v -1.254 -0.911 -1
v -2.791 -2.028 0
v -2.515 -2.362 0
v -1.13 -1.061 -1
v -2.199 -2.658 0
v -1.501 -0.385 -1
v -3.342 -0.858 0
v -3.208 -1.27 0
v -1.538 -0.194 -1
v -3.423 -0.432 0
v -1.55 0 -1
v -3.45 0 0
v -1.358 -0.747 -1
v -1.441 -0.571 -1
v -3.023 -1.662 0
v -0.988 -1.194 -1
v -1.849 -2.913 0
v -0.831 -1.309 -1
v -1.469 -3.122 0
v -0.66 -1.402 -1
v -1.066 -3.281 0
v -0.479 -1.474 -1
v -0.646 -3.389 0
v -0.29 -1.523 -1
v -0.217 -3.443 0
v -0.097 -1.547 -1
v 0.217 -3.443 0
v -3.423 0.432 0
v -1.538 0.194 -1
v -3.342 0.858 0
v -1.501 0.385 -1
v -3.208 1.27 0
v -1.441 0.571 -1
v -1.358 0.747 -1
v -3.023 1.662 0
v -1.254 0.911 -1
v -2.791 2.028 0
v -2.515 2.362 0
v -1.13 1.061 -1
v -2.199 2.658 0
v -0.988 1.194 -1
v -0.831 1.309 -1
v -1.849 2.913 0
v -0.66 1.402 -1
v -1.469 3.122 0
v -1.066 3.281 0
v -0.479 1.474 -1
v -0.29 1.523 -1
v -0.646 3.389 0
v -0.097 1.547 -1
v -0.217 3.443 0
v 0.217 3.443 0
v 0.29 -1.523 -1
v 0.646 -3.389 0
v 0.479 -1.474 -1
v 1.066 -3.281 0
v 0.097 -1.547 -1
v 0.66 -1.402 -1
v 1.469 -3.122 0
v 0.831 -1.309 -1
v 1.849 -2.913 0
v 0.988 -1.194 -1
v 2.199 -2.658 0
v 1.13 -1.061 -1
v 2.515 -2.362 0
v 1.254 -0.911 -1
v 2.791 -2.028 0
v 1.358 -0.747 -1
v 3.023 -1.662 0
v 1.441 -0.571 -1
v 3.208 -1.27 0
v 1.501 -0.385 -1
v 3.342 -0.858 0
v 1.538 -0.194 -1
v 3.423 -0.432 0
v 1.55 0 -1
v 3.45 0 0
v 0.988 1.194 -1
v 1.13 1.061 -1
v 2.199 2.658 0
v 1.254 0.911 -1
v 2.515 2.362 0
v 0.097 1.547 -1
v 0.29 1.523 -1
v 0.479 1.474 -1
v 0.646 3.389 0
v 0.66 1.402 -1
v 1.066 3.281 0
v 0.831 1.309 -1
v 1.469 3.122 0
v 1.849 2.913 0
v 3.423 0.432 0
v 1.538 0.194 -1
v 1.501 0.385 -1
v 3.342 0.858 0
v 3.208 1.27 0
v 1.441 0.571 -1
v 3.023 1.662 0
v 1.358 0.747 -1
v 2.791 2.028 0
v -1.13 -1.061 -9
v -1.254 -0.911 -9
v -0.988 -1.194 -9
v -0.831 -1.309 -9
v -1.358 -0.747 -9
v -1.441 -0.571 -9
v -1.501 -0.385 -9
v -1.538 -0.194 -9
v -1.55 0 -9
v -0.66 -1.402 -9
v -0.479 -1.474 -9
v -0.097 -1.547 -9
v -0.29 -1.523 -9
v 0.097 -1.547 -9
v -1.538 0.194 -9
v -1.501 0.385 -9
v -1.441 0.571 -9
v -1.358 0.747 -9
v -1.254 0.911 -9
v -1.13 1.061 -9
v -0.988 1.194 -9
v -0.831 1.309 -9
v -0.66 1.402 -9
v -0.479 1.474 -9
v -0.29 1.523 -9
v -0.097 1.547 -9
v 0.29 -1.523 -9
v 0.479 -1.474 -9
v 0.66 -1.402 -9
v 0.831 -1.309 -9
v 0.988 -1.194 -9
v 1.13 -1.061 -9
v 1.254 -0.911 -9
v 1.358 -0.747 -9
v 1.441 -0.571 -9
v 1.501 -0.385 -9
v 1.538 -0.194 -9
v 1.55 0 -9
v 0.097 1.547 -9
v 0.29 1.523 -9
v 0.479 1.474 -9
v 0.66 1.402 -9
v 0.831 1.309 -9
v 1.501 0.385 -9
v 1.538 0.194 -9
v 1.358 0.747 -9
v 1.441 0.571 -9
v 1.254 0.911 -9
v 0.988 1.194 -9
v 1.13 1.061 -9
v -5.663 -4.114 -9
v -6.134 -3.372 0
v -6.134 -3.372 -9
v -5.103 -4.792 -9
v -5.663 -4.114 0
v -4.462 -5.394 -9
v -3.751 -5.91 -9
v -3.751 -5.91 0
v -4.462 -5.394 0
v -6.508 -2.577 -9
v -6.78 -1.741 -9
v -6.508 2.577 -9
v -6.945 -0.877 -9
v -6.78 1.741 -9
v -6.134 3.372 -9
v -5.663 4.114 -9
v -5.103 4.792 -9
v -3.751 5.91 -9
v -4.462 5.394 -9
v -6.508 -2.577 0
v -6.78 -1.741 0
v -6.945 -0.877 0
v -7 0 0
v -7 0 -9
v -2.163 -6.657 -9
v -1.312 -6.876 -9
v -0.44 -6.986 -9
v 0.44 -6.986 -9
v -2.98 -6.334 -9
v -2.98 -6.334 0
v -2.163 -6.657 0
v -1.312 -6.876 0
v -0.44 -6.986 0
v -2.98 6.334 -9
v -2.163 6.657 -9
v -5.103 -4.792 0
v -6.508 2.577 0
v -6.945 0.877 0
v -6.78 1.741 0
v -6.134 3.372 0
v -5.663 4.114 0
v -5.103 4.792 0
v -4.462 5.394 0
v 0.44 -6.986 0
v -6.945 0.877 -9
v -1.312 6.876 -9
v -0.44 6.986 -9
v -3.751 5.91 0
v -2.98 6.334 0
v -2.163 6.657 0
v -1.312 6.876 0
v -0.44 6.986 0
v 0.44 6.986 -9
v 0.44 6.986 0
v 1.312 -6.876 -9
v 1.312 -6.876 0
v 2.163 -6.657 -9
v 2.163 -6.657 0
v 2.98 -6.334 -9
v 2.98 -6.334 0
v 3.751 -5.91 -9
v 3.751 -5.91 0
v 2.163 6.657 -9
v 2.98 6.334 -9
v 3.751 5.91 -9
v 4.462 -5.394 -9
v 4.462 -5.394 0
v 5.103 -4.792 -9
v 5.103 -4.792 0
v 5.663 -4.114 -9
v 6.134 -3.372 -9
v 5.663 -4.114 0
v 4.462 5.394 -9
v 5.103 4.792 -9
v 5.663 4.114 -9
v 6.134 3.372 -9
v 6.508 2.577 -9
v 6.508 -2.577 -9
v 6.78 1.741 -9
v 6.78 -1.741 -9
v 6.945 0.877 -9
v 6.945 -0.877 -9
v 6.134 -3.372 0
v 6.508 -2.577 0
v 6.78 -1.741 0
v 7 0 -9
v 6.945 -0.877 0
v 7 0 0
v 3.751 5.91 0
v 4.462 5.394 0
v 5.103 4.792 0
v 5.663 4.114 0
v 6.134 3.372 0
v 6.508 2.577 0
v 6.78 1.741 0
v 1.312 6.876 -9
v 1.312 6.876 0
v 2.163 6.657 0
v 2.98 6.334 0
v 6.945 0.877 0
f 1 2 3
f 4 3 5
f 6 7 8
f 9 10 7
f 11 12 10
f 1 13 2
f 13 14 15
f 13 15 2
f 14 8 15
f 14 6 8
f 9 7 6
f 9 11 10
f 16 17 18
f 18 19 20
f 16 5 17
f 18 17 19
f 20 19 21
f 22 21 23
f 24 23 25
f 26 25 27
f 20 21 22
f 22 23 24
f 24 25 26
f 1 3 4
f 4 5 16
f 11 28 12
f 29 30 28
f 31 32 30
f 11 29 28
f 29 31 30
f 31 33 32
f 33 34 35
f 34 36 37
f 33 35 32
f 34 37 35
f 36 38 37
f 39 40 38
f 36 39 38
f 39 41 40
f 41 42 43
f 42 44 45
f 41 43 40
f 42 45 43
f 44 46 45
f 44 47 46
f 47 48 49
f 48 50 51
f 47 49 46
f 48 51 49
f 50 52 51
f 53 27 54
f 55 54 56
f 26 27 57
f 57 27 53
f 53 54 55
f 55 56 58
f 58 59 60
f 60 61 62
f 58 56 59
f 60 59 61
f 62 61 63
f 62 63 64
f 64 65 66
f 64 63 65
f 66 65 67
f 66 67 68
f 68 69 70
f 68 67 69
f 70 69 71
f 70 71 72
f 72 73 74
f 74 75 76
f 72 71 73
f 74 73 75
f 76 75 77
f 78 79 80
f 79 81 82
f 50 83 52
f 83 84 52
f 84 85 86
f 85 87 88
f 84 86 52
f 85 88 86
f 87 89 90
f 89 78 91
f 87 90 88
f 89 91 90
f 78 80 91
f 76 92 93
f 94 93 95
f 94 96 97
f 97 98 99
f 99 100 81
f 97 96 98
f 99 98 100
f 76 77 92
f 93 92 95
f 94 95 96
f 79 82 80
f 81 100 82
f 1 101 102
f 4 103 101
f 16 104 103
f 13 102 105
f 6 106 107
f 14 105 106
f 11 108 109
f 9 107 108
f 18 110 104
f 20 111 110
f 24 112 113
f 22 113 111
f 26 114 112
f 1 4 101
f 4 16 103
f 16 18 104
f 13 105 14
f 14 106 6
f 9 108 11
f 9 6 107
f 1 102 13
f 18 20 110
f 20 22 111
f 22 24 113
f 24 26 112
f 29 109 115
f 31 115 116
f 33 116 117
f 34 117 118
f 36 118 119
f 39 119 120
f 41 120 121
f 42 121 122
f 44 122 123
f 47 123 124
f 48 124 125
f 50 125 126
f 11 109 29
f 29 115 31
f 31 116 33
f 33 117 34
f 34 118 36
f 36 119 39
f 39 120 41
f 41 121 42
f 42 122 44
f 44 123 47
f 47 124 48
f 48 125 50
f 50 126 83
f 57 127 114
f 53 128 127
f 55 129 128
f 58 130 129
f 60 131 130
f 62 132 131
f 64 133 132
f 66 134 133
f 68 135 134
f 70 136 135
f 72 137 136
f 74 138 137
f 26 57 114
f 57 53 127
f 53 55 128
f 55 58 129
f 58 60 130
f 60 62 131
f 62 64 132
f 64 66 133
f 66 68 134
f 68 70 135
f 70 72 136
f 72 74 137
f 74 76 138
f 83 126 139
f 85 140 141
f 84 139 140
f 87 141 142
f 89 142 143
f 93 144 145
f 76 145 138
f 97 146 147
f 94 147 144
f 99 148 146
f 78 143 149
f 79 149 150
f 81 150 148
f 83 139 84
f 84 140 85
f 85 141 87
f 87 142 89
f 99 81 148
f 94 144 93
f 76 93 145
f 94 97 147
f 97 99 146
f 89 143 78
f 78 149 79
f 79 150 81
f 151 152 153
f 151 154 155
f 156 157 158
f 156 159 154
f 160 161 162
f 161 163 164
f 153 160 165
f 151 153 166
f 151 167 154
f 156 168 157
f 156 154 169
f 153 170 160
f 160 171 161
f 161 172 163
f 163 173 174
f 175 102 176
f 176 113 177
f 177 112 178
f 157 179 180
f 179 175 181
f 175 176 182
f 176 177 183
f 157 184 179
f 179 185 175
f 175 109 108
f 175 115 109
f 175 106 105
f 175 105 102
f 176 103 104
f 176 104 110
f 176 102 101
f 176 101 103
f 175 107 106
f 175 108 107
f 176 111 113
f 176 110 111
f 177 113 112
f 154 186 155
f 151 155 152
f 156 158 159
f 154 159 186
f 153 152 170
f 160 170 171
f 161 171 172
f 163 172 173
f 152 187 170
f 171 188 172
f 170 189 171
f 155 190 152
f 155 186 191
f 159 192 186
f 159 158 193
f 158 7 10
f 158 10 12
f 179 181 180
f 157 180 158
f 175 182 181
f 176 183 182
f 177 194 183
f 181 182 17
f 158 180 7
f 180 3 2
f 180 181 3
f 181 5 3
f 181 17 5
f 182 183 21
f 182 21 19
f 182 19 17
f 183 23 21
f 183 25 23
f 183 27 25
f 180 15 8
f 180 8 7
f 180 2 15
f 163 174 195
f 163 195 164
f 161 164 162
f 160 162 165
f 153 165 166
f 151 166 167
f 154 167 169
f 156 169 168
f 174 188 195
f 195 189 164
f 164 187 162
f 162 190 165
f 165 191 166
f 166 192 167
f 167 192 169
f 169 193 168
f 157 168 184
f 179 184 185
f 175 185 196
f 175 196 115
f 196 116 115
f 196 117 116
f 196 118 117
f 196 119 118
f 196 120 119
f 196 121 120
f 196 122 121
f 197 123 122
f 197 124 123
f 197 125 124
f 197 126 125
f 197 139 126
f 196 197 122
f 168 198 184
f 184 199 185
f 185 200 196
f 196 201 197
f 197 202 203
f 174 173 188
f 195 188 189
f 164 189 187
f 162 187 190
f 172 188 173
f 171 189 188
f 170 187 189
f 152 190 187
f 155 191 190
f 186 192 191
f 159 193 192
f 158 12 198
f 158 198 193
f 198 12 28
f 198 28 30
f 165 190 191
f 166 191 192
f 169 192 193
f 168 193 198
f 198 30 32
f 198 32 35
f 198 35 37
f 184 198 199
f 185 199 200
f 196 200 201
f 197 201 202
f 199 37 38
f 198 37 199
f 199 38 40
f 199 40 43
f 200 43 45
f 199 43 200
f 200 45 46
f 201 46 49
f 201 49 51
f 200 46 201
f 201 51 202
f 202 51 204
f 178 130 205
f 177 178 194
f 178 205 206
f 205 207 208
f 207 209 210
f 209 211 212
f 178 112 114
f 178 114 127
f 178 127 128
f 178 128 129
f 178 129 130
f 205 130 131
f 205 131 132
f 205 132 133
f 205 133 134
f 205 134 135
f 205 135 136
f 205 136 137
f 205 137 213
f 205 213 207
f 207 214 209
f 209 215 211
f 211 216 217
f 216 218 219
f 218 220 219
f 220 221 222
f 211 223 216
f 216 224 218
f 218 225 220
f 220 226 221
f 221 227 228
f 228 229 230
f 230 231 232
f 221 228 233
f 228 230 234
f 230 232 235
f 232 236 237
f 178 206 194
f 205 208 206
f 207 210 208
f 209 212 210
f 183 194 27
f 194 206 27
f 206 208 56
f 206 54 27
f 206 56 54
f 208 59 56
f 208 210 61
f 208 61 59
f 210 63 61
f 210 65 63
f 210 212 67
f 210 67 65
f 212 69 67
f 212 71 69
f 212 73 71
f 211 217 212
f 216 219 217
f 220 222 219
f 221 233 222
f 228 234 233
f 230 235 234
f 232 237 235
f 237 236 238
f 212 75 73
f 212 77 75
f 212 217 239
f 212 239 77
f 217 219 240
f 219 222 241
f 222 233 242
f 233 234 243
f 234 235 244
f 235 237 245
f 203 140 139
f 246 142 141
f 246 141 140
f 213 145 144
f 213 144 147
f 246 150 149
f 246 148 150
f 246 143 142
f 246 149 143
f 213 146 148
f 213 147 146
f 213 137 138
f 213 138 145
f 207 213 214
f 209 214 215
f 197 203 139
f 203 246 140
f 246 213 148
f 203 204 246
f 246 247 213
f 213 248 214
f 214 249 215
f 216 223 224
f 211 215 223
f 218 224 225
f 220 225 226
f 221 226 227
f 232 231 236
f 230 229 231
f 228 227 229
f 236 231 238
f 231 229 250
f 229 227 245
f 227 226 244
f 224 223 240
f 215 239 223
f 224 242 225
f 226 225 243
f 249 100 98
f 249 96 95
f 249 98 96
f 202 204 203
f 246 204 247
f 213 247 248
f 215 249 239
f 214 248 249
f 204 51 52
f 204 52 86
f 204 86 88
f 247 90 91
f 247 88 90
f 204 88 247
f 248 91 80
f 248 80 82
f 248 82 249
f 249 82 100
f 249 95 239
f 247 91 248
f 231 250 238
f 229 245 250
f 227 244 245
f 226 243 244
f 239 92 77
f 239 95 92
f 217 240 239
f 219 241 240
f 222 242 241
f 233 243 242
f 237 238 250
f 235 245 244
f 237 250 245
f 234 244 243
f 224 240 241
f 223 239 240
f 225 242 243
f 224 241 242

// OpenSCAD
$fn = 50;


difference() {
	union() {
		translate(v = [0, 0, -9.0000000000]) {
			cylinder(h = 9, r = 7.0000000000);
		}
	}
	union() {
		translate(v = [0, 0, 0]) {
			rotate(a = [0, 0, 0]) {
				difference() {
					union() {
						translate(v = [0, 0, -12.0000000000]) {
							cylinder(h = 12, r = 1.2500000000);
						}
						translate(v = [0, 0, -1.0000000000]) {
							cylinder(h = 1.0000000000, r1 = 1.5500000000, r2 = 3.4500000000);
						}
						translate(v = [0, 0, -12.0000000000]) {
							cylinder(h = 12, r = 1.5500000000);
						}
						translate(v = [0, 0, -12.0000000000]) {
							cylinder(h = 12, r = 1.2500000000);
						}
					}
					union();
				}
			}
		}
	}
}
